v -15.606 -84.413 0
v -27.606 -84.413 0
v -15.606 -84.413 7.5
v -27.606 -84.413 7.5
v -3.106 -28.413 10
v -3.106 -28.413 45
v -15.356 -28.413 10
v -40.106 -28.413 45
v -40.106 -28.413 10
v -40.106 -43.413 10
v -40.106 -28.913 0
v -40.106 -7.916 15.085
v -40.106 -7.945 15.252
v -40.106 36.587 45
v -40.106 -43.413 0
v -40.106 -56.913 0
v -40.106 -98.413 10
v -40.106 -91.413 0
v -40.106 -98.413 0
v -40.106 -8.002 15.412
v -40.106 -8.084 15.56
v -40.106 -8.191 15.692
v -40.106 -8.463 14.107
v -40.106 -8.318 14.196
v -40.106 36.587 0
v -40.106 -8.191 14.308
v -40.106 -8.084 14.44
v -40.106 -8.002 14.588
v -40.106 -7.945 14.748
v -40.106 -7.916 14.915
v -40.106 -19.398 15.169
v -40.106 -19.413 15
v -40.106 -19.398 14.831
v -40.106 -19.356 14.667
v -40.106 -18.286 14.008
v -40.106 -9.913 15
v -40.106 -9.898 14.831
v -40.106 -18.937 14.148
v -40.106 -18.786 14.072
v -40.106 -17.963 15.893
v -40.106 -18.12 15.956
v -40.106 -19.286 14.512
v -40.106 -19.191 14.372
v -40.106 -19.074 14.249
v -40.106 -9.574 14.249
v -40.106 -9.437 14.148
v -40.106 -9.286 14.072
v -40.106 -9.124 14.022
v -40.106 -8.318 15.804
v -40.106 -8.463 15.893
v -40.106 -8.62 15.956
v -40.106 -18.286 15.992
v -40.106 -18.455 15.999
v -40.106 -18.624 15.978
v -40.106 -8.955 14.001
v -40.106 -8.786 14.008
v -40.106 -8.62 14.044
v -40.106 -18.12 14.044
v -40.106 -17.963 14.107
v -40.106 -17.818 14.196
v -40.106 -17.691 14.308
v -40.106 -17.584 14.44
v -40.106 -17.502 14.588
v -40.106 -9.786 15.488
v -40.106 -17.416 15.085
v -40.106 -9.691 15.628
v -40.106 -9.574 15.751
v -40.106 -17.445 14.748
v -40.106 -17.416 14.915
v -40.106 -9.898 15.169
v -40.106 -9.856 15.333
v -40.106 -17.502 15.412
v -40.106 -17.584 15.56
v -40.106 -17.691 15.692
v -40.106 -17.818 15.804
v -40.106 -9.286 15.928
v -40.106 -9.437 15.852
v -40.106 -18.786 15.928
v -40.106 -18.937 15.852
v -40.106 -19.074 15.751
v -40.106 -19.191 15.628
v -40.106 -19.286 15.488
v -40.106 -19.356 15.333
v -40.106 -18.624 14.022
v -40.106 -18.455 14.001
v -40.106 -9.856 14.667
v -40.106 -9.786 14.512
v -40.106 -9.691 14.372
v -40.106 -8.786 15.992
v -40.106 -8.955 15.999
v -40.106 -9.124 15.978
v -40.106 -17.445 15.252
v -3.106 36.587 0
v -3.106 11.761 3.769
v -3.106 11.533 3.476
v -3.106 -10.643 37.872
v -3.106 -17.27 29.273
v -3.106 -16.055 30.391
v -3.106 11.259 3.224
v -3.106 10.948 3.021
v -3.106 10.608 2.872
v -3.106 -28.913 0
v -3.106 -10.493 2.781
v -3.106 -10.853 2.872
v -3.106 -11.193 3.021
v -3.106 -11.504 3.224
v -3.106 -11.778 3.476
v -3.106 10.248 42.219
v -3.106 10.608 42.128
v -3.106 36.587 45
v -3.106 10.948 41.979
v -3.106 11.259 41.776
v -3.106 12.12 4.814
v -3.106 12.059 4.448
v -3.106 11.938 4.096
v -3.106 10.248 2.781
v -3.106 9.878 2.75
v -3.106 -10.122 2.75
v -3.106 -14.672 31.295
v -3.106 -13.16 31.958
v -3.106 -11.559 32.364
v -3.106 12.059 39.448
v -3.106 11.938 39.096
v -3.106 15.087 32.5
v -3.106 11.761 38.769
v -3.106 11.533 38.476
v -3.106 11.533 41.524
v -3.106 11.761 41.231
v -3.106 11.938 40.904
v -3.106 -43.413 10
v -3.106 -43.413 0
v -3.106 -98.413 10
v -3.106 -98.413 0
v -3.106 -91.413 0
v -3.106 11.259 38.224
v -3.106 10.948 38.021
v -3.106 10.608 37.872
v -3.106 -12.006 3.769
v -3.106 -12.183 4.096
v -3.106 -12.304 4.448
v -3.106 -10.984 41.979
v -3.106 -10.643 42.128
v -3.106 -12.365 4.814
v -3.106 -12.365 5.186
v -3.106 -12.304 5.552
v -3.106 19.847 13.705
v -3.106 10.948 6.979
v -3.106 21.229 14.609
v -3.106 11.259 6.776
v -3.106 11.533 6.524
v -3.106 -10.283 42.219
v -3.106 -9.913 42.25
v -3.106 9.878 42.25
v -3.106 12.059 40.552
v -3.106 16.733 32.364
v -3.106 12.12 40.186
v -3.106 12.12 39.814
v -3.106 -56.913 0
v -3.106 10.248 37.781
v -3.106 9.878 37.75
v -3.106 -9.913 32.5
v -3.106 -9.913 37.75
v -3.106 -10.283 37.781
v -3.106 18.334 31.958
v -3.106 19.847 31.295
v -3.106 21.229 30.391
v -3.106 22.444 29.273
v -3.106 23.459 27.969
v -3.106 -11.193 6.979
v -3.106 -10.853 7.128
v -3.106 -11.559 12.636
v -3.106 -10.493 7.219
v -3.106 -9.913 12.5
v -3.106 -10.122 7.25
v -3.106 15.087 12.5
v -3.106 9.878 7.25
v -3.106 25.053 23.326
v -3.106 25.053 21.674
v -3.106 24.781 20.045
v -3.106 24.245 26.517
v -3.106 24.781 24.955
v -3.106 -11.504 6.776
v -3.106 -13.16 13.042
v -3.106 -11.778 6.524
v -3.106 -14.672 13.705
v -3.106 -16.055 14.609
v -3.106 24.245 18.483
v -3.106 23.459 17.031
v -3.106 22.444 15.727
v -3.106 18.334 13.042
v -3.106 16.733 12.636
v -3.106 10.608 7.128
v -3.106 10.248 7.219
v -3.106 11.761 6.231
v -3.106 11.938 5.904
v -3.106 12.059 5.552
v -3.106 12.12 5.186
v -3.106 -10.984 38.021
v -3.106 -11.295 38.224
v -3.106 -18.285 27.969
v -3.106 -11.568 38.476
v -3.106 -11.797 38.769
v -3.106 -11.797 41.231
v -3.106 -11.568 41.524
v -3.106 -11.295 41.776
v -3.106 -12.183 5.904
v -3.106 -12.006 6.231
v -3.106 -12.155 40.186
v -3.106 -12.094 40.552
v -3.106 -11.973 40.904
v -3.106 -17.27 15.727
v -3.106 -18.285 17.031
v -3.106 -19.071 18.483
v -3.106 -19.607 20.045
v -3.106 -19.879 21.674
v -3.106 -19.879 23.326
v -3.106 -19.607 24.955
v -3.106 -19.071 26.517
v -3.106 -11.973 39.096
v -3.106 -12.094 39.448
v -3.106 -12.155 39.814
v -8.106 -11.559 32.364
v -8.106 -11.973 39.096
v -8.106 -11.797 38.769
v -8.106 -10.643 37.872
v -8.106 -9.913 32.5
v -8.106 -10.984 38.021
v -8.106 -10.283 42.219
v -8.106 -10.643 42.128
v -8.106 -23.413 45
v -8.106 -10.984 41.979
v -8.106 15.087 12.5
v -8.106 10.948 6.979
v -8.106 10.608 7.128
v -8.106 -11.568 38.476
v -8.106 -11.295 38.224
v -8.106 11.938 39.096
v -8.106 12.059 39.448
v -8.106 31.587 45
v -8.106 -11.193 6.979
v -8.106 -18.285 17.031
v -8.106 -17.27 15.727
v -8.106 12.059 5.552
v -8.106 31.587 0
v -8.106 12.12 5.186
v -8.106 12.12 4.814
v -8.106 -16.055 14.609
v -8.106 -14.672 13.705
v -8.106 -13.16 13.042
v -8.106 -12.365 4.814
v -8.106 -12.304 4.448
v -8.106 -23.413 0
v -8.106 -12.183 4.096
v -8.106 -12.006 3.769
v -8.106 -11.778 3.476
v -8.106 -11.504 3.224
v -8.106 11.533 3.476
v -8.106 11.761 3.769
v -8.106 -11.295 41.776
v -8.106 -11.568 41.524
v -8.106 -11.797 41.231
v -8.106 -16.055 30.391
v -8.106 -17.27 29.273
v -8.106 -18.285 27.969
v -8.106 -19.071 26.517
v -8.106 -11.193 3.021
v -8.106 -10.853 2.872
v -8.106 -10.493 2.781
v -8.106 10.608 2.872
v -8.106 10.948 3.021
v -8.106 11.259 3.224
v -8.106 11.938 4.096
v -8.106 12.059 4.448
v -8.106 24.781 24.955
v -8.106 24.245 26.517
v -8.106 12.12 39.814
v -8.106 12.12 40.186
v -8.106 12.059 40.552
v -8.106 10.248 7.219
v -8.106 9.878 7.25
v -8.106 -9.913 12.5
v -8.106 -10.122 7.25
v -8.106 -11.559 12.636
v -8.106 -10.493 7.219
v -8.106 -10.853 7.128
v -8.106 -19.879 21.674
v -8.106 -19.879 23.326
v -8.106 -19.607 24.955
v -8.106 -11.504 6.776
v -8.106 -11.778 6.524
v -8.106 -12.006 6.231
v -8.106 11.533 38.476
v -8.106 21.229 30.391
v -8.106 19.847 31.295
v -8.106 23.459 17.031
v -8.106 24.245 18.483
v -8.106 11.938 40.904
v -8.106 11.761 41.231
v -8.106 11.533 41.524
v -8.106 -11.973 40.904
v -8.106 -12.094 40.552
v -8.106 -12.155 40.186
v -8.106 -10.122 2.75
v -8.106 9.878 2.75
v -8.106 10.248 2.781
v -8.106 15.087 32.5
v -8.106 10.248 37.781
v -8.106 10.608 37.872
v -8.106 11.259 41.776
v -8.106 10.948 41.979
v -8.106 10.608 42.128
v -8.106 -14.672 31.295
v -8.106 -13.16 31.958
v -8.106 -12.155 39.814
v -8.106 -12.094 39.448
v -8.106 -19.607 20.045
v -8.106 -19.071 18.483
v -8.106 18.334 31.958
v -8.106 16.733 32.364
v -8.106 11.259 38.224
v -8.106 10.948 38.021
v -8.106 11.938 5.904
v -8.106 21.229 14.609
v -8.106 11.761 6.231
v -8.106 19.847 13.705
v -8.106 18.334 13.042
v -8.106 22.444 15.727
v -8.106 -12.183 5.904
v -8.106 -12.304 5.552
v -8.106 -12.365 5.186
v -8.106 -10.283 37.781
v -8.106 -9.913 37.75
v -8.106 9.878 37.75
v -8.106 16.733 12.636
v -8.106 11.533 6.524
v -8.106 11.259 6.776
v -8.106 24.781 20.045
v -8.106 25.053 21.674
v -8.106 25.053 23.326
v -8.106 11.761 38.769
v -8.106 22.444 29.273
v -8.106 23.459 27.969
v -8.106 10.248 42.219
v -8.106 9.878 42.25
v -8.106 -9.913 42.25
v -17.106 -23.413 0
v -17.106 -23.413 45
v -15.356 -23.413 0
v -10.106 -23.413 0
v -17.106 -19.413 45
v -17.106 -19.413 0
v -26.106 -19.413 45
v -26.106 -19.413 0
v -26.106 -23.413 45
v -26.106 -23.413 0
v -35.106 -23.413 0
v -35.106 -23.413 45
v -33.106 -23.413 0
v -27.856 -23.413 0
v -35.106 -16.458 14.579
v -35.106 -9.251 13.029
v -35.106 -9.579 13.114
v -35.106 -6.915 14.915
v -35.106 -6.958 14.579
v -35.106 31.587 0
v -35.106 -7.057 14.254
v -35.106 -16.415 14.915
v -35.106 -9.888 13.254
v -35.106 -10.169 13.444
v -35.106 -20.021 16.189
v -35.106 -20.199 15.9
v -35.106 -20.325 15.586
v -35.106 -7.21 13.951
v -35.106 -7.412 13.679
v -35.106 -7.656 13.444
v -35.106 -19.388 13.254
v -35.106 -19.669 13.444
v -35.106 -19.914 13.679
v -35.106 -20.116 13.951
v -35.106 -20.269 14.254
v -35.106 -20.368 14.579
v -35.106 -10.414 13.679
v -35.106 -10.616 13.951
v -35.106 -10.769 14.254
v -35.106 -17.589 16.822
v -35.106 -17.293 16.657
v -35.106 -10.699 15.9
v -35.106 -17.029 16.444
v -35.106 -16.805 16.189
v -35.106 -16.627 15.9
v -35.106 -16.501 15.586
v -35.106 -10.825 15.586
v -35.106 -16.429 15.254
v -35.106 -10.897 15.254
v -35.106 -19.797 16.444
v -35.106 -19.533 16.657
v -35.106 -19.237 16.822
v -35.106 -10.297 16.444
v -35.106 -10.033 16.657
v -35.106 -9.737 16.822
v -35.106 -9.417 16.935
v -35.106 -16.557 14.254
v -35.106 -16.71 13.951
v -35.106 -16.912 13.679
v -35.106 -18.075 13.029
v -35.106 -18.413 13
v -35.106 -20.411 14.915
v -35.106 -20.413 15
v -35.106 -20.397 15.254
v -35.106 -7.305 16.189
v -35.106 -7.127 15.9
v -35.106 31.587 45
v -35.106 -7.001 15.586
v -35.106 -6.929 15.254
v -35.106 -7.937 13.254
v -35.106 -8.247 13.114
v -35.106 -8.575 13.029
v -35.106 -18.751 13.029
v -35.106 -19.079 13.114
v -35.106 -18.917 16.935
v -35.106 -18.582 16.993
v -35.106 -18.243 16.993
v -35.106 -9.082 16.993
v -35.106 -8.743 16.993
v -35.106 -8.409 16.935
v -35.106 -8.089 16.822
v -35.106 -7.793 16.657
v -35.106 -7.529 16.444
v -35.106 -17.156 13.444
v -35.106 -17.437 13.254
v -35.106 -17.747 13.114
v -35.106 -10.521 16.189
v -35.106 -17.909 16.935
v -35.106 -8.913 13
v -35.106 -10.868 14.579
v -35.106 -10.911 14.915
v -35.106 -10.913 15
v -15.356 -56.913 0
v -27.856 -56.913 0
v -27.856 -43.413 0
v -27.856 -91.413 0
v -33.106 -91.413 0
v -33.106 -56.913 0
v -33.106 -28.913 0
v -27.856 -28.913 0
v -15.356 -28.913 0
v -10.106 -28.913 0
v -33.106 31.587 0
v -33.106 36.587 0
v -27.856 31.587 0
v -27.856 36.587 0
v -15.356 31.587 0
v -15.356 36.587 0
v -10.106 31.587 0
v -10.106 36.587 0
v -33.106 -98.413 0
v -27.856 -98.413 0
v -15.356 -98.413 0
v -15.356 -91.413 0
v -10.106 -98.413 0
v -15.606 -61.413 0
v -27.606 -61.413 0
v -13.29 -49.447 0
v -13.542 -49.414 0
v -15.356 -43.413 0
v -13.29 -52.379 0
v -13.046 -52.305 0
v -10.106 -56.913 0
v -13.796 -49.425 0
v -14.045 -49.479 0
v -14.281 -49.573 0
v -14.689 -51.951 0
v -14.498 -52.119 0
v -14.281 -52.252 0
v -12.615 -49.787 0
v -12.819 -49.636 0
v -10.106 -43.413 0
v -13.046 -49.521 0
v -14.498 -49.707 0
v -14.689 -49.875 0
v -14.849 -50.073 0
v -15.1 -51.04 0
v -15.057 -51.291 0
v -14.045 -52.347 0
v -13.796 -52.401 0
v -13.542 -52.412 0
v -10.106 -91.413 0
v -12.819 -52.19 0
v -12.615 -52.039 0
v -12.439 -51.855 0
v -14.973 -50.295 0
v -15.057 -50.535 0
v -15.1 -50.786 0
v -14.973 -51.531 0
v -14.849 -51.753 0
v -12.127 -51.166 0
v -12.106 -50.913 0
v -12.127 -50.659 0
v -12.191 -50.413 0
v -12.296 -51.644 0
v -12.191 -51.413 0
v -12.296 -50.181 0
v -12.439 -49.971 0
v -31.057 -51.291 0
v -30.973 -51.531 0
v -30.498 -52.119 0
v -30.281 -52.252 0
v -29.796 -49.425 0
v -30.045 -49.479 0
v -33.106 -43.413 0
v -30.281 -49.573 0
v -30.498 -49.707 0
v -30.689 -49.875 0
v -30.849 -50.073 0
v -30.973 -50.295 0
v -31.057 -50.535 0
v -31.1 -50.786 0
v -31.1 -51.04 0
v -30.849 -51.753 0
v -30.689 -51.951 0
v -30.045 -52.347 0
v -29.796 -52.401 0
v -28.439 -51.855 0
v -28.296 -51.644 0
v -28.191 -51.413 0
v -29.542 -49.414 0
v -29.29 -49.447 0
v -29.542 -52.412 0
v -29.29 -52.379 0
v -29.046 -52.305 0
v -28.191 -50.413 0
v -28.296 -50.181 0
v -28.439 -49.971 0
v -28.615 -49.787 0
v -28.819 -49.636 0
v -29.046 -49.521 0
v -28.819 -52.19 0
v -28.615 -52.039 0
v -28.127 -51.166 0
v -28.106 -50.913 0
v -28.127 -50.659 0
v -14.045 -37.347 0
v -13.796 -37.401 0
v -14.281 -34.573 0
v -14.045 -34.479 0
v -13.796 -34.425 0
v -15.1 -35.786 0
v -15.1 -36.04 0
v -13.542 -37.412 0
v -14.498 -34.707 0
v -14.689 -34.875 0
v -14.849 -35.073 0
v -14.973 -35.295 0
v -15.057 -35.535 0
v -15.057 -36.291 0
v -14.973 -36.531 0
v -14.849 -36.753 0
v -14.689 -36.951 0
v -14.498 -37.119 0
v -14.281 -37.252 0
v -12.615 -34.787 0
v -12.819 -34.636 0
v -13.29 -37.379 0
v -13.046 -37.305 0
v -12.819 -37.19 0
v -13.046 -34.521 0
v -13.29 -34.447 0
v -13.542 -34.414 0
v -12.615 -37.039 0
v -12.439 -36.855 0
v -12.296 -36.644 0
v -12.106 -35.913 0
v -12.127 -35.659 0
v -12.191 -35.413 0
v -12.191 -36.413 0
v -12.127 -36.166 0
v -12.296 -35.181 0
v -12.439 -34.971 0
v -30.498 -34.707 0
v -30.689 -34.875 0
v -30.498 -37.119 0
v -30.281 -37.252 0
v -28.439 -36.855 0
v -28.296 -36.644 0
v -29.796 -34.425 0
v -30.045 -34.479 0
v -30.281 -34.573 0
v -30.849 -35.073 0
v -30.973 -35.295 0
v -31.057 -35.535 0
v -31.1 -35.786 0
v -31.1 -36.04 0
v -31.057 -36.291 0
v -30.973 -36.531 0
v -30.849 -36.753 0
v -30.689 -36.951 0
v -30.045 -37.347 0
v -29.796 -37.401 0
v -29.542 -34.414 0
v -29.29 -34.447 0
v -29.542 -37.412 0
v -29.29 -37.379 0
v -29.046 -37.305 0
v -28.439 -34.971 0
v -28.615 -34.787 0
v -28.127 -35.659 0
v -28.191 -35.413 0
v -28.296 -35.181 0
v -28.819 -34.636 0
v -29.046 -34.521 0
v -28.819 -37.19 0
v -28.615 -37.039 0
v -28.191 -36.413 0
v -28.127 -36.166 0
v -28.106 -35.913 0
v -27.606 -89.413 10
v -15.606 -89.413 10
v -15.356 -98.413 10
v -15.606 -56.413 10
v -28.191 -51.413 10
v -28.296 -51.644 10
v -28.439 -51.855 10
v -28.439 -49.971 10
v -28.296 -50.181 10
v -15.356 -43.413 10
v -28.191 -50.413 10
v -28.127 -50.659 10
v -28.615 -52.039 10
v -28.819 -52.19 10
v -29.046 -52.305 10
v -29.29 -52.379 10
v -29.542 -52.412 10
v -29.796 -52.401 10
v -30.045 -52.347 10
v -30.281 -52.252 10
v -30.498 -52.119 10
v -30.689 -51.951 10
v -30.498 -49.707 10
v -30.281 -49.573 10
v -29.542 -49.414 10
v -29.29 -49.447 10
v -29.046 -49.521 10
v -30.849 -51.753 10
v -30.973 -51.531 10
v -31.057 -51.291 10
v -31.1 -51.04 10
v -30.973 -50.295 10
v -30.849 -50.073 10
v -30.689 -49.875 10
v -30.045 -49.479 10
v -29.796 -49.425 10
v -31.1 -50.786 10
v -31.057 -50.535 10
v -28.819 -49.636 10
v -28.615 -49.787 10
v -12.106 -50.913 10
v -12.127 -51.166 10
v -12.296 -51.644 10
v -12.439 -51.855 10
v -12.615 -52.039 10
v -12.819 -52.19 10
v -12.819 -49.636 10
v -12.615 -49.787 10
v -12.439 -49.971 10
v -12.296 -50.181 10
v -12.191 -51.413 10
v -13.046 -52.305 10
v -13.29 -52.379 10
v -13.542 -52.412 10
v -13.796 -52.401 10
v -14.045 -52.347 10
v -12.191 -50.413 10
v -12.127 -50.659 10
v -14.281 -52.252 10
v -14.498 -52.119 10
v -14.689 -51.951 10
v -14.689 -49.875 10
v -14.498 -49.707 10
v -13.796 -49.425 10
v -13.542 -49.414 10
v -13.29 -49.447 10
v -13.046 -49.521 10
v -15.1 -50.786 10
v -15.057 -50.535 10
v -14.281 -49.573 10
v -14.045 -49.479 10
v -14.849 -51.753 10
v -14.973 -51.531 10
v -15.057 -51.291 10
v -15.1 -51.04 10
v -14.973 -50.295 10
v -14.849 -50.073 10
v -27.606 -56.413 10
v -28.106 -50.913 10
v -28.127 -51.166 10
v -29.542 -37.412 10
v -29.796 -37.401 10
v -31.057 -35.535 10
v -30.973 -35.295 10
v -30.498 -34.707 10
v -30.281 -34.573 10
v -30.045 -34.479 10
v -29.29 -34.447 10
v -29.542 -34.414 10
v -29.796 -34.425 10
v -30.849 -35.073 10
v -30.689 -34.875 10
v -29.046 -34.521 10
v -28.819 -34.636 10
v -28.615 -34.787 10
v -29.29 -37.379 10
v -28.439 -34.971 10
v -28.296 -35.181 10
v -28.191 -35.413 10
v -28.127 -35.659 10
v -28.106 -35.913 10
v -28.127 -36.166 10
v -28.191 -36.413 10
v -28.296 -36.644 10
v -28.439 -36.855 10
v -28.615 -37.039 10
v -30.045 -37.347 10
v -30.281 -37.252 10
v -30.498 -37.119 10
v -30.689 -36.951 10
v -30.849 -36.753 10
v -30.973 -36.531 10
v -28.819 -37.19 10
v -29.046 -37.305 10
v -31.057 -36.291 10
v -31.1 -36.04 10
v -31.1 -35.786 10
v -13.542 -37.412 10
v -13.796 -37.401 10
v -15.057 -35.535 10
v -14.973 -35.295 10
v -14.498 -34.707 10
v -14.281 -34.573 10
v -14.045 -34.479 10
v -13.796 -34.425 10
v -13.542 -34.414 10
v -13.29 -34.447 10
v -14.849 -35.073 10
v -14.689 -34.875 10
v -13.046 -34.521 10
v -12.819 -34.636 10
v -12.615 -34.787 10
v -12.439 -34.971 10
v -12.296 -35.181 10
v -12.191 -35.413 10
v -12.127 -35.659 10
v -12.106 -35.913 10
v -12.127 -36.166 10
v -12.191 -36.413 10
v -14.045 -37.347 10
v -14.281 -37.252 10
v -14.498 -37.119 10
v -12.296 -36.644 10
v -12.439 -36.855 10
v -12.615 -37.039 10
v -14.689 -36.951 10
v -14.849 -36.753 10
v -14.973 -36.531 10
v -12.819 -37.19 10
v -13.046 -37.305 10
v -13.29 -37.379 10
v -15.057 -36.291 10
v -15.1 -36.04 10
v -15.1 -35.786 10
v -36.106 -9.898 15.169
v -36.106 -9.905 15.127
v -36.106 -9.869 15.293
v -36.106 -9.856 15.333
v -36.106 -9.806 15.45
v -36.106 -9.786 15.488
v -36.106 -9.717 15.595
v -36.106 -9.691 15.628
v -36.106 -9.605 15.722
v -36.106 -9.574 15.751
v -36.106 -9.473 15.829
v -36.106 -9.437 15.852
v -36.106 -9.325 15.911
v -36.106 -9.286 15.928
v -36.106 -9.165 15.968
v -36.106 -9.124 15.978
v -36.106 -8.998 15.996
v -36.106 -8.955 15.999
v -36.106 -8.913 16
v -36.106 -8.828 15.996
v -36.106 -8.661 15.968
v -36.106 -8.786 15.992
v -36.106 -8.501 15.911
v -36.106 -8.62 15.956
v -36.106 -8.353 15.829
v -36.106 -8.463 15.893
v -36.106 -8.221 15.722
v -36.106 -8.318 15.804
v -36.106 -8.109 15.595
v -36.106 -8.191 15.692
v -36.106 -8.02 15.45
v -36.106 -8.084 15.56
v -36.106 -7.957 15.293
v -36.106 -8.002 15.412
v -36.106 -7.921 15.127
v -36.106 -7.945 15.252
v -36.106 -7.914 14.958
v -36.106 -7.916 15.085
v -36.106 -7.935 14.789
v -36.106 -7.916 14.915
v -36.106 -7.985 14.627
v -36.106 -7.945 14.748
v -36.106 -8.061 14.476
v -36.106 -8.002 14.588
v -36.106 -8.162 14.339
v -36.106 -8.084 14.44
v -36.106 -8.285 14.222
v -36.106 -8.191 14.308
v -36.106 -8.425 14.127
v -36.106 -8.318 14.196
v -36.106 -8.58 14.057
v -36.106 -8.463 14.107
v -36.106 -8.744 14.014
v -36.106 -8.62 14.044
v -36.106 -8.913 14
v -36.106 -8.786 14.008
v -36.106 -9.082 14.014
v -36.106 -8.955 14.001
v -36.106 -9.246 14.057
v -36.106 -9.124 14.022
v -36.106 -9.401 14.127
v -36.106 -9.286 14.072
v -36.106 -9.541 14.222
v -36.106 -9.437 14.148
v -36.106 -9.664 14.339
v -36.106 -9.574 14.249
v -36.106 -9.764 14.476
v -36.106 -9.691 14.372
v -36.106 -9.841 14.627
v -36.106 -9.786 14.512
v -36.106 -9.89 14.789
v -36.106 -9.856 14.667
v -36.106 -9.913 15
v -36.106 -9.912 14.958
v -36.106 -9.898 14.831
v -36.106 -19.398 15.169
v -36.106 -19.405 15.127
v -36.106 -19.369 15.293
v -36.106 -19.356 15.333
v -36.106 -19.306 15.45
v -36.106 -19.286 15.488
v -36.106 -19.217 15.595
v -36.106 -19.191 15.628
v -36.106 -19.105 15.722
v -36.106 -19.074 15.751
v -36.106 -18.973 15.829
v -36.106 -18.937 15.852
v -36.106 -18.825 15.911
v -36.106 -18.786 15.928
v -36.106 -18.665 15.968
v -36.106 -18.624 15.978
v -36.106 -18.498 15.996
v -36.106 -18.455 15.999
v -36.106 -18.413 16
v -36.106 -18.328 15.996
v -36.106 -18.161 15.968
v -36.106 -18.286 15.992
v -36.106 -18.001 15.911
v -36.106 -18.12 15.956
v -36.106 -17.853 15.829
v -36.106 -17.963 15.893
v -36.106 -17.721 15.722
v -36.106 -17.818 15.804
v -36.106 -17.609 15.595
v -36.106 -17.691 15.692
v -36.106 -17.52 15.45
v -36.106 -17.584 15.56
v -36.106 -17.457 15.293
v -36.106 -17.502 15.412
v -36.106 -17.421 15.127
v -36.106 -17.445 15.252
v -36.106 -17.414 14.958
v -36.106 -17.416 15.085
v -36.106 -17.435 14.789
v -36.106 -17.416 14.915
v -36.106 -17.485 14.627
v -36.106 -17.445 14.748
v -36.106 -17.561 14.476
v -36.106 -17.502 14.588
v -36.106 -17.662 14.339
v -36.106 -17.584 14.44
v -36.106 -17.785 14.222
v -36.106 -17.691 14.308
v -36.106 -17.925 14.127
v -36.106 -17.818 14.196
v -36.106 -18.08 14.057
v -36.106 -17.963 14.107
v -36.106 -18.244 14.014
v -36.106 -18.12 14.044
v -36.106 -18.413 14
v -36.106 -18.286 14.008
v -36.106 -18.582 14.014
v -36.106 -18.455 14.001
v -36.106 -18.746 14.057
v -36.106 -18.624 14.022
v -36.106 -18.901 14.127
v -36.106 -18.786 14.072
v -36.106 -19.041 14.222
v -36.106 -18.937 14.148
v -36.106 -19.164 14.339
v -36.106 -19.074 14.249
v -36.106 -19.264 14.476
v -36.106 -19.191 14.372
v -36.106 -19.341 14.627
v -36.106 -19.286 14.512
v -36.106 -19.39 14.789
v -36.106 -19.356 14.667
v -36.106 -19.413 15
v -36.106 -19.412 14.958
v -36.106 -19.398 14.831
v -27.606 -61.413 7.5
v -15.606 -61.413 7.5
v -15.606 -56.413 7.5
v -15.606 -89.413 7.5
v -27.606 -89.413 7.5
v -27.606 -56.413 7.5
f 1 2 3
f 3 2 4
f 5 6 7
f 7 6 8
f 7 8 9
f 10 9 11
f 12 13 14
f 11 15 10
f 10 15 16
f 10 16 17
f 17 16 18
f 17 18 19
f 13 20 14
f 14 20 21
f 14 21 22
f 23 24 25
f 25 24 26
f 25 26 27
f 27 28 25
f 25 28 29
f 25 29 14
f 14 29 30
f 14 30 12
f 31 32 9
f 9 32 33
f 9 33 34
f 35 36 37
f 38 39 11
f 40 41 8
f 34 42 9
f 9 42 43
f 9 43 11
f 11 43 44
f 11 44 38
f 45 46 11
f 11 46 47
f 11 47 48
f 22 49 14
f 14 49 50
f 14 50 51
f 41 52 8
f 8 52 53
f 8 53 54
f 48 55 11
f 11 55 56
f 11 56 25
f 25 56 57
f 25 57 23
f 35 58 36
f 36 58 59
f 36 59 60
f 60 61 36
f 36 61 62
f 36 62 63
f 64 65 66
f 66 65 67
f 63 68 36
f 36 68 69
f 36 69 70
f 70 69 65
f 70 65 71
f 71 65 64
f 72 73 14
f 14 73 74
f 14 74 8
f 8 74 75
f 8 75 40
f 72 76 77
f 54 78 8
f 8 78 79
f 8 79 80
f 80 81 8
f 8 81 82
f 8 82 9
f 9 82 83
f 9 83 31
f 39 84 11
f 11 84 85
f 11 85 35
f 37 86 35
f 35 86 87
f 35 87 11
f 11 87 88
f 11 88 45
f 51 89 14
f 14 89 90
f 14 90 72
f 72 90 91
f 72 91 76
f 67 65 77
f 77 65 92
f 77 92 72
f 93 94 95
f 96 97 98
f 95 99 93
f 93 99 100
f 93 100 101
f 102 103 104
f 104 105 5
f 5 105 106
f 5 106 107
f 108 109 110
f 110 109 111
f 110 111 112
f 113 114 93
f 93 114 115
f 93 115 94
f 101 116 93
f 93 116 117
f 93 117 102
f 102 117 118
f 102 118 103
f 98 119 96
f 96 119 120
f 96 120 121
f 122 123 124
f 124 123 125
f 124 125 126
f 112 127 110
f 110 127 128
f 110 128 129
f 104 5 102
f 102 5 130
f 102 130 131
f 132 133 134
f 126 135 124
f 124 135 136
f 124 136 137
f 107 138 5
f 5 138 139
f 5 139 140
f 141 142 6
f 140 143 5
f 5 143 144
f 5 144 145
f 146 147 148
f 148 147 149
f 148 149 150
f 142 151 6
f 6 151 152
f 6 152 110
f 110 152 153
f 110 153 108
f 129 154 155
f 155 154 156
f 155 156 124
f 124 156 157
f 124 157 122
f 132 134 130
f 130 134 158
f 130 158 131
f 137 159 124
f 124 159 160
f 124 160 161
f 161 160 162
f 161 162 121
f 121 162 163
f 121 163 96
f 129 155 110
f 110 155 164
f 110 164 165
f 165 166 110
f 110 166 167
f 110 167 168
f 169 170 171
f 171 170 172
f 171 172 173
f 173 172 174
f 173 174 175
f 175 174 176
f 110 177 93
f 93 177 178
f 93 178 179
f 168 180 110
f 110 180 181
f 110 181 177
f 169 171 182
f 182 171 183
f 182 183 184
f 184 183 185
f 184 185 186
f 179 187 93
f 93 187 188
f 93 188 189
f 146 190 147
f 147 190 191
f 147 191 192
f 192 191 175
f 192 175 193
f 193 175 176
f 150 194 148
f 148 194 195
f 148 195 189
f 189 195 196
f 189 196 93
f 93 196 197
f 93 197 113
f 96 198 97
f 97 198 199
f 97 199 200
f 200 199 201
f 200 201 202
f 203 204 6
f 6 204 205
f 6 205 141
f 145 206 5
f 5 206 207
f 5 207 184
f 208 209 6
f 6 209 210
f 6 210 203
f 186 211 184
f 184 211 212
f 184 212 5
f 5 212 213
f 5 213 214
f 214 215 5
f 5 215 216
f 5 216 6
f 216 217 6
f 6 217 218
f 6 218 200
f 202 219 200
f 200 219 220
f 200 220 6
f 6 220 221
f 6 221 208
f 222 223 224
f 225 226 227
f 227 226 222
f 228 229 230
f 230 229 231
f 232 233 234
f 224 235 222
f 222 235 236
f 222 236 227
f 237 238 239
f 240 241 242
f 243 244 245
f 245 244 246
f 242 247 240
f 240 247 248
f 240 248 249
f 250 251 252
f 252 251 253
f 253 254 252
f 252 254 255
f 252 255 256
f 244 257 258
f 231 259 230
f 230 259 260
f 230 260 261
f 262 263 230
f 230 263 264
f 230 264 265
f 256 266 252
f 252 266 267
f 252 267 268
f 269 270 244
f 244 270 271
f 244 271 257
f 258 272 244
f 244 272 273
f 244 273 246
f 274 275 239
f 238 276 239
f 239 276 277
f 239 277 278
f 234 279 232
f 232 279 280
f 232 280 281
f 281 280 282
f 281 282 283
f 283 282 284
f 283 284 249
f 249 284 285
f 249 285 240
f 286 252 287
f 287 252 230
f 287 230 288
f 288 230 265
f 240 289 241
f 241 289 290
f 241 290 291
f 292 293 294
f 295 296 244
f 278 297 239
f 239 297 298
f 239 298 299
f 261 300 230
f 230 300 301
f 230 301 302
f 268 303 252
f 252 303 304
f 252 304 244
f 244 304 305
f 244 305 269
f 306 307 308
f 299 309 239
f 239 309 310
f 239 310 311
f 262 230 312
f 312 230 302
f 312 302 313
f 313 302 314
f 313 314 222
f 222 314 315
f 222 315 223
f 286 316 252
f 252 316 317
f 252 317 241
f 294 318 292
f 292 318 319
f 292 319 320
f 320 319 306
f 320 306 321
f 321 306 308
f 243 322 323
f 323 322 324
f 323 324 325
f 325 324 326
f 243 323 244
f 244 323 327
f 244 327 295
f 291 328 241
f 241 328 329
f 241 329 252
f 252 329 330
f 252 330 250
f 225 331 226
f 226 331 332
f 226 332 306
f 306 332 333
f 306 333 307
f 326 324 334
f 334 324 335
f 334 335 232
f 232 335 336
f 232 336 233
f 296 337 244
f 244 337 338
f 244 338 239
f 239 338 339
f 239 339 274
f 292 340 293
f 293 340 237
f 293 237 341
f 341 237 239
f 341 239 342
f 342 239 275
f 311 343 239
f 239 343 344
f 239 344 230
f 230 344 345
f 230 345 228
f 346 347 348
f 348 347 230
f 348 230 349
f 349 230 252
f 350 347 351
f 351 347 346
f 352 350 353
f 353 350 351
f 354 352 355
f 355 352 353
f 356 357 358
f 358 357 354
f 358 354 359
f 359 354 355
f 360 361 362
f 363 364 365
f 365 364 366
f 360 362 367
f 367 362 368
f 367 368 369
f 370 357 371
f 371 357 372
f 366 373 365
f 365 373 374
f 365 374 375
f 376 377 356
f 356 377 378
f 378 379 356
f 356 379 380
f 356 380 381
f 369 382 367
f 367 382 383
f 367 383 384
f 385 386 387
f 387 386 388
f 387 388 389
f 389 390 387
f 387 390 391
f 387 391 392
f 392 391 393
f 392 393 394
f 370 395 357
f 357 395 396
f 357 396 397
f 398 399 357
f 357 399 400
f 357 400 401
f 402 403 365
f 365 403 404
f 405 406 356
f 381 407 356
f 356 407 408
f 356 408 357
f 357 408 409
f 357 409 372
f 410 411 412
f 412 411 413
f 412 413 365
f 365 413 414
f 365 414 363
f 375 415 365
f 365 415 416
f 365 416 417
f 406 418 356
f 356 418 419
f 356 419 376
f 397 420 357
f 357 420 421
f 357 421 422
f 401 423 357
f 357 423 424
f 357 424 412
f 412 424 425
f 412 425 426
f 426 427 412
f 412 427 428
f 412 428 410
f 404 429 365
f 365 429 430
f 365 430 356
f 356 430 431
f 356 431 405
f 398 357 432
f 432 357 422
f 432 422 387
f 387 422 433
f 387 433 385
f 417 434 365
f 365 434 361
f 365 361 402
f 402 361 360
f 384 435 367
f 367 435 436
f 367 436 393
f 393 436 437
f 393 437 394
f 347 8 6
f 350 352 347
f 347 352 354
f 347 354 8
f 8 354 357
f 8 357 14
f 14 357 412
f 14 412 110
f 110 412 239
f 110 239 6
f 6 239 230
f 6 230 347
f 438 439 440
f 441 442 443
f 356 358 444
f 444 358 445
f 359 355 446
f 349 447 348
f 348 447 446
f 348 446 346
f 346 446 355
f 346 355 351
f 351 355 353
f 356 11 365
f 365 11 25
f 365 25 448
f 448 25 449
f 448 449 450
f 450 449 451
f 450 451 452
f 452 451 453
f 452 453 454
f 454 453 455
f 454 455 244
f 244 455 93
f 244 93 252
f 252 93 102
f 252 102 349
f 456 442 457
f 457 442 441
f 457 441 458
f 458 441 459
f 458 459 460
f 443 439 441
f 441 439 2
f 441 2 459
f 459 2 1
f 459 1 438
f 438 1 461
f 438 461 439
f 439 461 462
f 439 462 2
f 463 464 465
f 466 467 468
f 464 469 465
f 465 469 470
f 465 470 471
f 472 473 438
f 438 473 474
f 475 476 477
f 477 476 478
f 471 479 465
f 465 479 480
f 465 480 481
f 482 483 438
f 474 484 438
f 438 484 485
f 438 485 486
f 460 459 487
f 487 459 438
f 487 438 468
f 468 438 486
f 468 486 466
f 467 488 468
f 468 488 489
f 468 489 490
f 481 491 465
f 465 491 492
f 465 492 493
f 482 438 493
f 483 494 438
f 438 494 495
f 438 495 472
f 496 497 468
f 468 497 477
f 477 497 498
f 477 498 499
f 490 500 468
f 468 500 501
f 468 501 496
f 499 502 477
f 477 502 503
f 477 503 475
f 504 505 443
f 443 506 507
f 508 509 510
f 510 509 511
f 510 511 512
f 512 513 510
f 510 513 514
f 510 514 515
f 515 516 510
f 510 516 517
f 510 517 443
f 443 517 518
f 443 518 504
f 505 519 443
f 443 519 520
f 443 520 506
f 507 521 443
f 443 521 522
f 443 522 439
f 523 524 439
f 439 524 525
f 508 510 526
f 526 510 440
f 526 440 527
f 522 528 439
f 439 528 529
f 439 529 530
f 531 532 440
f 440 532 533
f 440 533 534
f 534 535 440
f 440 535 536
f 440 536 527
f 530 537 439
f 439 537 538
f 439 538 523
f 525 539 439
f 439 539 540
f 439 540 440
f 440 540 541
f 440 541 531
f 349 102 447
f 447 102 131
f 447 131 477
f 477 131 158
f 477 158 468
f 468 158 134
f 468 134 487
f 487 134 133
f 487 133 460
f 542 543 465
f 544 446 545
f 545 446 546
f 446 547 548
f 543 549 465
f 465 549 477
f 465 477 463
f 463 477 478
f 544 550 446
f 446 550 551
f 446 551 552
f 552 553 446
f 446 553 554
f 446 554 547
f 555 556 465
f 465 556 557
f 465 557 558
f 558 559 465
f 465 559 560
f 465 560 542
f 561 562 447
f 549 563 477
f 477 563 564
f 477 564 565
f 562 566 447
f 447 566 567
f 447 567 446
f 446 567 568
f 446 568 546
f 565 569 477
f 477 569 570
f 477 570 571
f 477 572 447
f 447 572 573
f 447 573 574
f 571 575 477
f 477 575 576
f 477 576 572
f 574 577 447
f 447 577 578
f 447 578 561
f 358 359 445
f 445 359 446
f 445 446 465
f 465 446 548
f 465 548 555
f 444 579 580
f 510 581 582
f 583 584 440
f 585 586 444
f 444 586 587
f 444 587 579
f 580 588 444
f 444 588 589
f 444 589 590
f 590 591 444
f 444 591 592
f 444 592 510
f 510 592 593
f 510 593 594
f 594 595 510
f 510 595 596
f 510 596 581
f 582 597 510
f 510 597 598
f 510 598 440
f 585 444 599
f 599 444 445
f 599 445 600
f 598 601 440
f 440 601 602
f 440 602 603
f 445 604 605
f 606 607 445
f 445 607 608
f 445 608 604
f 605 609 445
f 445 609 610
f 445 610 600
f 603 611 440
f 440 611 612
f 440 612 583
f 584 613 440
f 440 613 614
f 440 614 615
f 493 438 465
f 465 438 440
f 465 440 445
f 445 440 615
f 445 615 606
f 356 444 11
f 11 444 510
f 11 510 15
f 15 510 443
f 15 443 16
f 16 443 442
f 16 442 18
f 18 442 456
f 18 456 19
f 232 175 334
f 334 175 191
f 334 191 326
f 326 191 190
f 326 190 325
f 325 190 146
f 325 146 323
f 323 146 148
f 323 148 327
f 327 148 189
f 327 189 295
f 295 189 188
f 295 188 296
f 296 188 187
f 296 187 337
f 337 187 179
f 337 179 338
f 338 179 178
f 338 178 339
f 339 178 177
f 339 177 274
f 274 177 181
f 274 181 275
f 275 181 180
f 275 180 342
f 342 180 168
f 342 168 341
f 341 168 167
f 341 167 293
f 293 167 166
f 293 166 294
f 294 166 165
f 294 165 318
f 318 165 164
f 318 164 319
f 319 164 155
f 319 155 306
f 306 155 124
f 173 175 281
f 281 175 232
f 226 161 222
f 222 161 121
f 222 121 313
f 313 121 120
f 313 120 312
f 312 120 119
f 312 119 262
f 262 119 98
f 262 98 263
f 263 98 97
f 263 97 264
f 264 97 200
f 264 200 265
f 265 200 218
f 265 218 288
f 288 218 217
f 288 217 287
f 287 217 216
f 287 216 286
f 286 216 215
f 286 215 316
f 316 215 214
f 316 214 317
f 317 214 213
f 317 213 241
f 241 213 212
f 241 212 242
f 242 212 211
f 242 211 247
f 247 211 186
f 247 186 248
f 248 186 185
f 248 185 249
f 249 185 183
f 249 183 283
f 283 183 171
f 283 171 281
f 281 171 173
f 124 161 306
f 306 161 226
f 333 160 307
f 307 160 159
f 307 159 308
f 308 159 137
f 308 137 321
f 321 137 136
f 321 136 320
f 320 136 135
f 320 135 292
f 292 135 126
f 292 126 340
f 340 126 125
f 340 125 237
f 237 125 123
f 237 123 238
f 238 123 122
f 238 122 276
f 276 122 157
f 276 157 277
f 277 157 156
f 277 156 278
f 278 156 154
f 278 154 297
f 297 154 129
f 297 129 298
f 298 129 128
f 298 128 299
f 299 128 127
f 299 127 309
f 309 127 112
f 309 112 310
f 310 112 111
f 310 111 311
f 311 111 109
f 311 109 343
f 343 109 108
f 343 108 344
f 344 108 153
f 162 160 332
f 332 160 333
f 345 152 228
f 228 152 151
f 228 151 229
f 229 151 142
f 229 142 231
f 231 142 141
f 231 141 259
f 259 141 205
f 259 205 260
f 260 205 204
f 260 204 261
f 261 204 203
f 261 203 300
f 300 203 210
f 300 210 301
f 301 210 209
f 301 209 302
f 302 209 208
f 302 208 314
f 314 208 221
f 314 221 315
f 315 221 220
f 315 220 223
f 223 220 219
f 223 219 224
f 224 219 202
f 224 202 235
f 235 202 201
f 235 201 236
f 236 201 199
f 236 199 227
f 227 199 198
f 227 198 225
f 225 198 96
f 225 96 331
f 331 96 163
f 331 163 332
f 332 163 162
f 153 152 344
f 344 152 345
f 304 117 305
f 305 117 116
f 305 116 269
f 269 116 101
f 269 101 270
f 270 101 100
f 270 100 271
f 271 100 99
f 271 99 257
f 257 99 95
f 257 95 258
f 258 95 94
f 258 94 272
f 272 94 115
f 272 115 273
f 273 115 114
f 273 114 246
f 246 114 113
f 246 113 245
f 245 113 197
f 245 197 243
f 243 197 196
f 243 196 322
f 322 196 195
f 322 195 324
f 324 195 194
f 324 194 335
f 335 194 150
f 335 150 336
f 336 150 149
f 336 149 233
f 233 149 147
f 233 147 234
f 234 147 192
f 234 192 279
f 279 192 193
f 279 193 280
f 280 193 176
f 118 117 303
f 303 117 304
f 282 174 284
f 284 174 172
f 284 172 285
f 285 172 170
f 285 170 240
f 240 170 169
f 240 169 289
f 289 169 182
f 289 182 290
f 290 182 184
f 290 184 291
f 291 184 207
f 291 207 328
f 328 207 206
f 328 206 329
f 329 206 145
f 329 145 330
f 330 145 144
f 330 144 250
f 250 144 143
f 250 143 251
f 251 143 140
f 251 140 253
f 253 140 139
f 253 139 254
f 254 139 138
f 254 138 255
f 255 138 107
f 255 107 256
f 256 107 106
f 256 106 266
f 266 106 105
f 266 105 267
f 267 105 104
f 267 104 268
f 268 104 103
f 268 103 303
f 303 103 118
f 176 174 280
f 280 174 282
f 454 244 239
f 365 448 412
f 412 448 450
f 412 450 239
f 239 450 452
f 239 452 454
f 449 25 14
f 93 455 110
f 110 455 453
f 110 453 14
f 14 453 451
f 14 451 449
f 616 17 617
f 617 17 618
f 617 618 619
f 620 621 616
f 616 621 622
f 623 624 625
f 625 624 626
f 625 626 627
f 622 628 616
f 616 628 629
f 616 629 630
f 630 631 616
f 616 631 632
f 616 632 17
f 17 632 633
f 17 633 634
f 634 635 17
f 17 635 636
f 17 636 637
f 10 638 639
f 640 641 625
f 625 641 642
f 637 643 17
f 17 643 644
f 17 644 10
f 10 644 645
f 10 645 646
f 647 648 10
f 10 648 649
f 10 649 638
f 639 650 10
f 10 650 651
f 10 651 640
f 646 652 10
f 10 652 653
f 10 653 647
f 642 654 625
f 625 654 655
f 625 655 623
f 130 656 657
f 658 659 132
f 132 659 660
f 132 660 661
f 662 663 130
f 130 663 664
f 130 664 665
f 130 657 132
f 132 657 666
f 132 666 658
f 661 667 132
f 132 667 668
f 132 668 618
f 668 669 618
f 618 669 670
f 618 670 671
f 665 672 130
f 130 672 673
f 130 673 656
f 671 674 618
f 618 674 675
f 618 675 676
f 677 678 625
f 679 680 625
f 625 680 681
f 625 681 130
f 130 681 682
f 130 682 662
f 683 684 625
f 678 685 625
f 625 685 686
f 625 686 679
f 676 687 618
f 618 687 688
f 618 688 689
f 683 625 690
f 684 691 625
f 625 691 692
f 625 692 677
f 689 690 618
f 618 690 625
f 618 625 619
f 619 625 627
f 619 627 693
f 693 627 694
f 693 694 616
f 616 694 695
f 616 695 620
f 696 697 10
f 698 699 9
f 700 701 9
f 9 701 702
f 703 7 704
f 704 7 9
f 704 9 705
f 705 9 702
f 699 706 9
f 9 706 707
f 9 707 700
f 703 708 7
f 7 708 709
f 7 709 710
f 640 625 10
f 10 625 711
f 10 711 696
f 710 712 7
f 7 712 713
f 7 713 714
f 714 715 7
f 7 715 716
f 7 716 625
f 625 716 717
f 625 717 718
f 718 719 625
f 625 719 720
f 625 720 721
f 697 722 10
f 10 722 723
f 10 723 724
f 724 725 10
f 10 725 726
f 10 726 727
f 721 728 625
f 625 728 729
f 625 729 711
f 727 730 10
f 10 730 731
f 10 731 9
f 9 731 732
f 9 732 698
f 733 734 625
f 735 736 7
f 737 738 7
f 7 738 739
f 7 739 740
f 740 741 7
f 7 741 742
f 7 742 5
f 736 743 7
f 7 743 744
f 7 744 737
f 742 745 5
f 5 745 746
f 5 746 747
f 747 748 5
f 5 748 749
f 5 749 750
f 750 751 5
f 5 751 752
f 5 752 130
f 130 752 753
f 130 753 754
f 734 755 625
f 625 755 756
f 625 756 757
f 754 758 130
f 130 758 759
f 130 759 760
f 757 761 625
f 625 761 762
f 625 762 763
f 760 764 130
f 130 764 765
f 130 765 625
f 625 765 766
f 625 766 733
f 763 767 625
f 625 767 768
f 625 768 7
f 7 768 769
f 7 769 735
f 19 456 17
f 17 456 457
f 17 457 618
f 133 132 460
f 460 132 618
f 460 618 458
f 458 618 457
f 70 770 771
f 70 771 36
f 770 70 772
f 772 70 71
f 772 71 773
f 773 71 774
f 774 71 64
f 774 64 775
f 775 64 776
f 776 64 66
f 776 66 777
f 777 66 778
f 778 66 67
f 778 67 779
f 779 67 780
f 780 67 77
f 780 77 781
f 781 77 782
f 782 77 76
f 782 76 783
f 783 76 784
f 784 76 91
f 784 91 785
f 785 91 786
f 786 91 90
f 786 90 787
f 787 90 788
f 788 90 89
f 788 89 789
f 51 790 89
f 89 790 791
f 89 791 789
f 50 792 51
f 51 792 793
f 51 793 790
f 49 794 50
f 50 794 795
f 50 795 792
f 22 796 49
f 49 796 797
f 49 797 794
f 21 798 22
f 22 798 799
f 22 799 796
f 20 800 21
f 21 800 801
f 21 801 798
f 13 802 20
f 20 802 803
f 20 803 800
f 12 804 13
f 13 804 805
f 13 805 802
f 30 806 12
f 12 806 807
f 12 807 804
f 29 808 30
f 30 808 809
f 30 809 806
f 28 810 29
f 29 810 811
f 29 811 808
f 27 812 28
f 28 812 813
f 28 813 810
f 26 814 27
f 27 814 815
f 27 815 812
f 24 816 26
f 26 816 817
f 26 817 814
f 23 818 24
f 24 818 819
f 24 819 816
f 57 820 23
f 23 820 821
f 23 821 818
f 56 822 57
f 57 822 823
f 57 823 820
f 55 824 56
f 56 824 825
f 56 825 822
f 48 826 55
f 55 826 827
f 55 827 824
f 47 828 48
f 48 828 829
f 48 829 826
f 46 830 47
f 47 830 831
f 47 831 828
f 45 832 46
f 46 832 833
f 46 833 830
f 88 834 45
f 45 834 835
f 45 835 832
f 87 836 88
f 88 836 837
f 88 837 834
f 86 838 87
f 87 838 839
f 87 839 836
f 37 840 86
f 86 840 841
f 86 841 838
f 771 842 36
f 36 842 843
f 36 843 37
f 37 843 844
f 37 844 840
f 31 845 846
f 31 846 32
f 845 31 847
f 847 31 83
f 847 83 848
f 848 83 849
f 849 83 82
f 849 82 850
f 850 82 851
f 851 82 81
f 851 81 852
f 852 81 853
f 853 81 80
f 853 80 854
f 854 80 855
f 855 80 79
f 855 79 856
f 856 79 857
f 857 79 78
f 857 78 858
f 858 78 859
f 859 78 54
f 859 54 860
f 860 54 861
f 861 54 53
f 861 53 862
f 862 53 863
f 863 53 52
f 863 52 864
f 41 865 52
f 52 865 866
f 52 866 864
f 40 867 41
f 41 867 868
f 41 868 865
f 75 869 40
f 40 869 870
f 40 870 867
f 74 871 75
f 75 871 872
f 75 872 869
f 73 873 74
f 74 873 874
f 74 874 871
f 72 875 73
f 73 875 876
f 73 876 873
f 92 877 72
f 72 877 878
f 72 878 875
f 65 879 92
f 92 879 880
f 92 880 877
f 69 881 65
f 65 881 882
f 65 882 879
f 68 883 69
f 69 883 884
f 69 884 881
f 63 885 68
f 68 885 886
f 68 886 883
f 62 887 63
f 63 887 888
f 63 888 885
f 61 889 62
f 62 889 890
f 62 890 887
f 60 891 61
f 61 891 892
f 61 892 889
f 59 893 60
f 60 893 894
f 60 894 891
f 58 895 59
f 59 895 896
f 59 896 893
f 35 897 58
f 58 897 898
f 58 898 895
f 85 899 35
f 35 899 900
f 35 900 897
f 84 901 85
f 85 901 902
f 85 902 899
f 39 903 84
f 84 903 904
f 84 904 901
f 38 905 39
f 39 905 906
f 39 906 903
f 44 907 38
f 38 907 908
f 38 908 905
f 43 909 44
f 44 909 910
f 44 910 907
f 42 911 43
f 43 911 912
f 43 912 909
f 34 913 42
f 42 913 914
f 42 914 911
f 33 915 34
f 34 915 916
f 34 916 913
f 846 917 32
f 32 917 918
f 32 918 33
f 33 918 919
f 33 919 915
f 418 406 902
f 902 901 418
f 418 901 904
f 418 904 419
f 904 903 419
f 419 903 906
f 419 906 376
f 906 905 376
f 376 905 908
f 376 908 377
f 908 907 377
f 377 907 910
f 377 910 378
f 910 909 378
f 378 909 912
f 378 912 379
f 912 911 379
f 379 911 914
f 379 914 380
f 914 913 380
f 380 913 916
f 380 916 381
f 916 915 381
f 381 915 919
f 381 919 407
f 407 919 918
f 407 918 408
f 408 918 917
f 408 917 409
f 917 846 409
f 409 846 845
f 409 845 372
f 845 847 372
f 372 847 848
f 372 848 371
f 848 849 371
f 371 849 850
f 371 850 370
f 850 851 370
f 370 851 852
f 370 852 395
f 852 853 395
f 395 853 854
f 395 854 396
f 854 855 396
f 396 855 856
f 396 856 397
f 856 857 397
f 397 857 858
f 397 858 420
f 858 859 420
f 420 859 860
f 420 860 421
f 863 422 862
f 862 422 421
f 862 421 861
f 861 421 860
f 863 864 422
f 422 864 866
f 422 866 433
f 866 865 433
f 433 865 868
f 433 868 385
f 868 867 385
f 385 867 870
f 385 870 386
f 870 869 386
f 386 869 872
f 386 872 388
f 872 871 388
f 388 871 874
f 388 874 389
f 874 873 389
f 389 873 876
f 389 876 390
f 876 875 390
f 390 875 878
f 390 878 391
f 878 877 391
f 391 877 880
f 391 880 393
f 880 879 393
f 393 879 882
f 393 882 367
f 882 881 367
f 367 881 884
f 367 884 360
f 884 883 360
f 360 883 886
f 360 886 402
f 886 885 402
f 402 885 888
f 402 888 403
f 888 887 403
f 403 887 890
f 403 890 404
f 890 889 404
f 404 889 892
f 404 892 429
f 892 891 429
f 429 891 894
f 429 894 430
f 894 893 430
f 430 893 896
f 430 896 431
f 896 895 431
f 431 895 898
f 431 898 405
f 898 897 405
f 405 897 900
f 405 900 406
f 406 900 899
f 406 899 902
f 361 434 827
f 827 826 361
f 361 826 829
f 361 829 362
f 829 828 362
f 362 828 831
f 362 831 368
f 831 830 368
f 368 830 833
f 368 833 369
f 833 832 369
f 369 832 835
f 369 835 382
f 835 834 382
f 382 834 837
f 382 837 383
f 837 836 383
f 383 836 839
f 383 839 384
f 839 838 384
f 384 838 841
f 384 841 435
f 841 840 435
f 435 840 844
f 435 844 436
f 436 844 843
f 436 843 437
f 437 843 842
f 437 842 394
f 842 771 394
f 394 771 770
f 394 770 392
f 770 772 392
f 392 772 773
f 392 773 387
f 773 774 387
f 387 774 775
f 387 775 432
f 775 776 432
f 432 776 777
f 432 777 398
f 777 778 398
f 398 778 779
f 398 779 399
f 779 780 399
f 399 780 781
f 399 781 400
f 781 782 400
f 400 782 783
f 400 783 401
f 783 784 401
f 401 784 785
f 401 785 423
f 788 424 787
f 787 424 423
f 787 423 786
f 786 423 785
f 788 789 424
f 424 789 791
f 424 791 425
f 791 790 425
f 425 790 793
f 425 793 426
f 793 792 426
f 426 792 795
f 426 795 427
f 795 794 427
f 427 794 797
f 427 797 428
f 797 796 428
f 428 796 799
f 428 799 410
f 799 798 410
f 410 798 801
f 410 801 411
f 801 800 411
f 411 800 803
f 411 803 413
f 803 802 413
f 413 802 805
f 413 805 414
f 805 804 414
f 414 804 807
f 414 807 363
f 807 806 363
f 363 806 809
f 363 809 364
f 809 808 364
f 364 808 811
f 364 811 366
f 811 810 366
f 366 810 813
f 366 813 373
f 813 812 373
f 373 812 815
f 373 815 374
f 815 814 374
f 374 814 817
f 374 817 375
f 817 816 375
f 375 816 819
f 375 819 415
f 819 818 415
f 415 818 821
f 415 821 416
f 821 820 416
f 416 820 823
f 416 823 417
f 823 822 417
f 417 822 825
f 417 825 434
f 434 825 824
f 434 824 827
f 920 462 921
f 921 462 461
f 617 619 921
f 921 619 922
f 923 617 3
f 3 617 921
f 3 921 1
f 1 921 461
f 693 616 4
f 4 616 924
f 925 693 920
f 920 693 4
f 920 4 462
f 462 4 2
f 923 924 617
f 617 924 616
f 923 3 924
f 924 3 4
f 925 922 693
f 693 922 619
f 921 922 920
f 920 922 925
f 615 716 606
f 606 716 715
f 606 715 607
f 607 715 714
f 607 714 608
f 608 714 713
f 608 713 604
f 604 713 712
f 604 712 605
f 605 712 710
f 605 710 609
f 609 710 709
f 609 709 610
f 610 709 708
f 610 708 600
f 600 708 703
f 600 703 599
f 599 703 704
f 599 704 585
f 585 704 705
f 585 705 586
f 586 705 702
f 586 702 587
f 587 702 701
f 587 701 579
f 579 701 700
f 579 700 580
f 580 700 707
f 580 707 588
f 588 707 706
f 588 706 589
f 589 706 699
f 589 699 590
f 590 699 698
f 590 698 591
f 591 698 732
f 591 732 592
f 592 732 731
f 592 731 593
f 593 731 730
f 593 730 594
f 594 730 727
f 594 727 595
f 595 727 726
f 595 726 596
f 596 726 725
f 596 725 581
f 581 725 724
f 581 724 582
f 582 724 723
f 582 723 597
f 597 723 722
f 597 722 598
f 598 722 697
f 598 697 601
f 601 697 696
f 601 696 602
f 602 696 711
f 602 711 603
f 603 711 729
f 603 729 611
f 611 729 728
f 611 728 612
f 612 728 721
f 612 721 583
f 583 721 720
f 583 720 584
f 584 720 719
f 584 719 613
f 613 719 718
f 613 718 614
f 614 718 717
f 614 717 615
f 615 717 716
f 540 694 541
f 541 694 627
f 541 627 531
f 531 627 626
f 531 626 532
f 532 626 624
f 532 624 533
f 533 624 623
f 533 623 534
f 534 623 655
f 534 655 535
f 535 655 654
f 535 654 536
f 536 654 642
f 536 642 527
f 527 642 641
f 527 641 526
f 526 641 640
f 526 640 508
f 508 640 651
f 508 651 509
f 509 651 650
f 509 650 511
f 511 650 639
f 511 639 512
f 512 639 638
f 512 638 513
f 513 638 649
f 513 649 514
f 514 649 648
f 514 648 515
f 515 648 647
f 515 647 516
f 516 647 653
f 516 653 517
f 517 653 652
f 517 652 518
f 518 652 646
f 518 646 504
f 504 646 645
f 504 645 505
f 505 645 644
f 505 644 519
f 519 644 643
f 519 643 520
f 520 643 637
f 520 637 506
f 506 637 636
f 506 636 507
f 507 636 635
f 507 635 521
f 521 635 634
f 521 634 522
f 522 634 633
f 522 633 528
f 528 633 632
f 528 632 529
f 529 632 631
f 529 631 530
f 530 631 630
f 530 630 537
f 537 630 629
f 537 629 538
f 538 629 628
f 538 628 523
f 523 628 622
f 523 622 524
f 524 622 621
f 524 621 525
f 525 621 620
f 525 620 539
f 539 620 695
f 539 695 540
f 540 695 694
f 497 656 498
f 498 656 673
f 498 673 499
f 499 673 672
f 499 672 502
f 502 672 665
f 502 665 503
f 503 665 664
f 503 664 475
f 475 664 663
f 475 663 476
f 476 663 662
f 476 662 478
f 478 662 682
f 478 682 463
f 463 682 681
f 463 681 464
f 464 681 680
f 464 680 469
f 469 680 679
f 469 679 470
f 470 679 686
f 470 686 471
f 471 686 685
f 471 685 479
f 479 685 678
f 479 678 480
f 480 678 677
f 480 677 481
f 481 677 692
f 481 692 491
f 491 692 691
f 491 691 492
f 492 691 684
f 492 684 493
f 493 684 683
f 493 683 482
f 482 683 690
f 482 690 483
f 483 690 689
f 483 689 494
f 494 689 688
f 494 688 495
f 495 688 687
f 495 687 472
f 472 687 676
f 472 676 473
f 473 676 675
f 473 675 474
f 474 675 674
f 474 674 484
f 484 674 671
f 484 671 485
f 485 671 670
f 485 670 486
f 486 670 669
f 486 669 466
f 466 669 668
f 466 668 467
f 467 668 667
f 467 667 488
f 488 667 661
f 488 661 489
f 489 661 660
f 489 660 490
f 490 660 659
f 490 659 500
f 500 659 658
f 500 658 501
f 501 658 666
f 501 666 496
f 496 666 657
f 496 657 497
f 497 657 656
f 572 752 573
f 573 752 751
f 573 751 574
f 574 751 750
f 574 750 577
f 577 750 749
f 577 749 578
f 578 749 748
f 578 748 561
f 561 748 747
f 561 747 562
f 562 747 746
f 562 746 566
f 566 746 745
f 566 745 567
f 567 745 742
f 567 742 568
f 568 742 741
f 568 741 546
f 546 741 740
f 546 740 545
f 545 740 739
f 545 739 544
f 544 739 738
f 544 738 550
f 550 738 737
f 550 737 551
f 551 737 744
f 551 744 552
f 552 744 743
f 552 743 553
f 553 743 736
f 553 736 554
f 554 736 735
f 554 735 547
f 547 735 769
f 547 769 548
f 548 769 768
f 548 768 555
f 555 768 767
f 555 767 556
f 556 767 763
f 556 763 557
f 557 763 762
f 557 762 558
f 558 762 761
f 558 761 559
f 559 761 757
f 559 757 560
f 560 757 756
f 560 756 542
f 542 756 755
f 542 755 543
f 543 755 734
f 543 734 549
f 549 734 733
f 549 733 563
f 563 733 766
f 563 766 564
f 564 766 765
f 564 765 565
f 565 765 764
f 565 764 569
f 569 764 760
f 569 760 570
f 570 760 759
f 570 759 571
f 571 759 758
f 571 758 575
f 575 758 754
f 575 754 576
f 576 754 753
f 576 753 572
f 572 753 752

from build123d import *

# Parameters (mm, degrees)
BOSS_EXTRU_1_DEPTH      = 45
ENL_V_MAT_EXTRU_1_DEPTH = 5
ESQUISSE4_W             = 37
ESQUISSE4_H             = 45
BOSS_EXTRU_2_DEPTH      = 5
ESQUISSE5_W             = 37
ESQUISSE5_H             = 10
BOSS_EXTRU_3_DEPTH      = 70
ESQUISSE6_R             = 1
ENL_V_MAT_EXTRU_2_DEPTH = 10
CHANFREIN2_SIZE         = 1
ESQUISSE7_W             = 12
ESQUISSE7_H             = 23
ENL_V_MAT_EXTRU_3_DEPTH = 10
ESQUISSE8_W             = 12
ESQUISSE8_H             = 5
ENL_V_MAT_EXTRU_4_DEPTH = 2.5
ESQUISSE10_R            = 1.5
ENL_V_MAT_EXTRU_5_DEPTH = 10


with BuildPart() as part:
    # Esquisse1 → Boss.-Extru.1 (new body)
    with BuildSketch(Plane.XY):
        Polygon((-40.10574777, 31.587127795), (-35.10574777, 31.587127795), (-35.10574777, -23.412872205), (-26.10574777, -23.412872205), (-26.10574777, -19.412872205), (-17.10574777, -19.412872205), (-17.10574777, -23.412872205), (-8.10574777, -23.412872205), (-8.10574777, 31.587127795), (-3.10574777, 31.587127795), (-3.10574777, -28.412872205), (-40.10574777, -28.412872205), align=None)
    extrude(amount=BOSS_EXTRU_1_DEPTH)

    # Esquisse2 → Enlèv. mat.-Extru.1 (cut)
    with BuildSketch(Plane(origin=(-3.10574777, 0, 0), x_dir=(0, 0, -1), z_dir=(1, 0, 0))):
        with BuildLine():
            Line((-12.5, 15.087127795), (-12.5, -9.912872205))
            ThreePointArc((-12.5, -9.912872205), (-22.5, -19.912872205), (-32.5, -9.912872205))
            Line((-32.5, -9.912872205), (-32.5, 15.087127795))
            ThreePointArc((-32.5, 15.087127795), (-22.5, 25.087127795), (-12.5, 15.087127795))
        make_face()
        with BuildLine():
            Line((-37.75, 9.877519714), (-37.75, -9.912872205))
            ThreePointArc((-37.75, -9.912872205), (-40, -12.162872205), (-42.25, -9.912872205))
            Line((-42.25, -9.912872205), (-42.25, 9.877519714))
            ThreePointArc((-42.25, 9.877519714), (-40, 12.127519714), (-37.75, 9.877519714))
        make_face()
        with BuildLine():
            Line((-2.75, 9.877519714), (-2.75, -10.122480286))
            ThreePointArc((-2.75, -10.122480286), (-5, -12.372480286), (-7.25, -10.122480286))
            Line((-7.25, -10.122480286), (-7.25, 9.877519714))
            ThreePointArc((-7.25, 9.877519714), (-5, 12.127519714), (-2.75, 9.877519714))
        make_face()
    extrude(amount=-ENL_V_MAT_EXTRU_1_DEPTH, mode=Mode.SUBTRACT)

    # Esquisse4 → Boss.-Extru.2 (add)
    with BuildSketch(Plane(origin=(0, 31.587127795, 0), x_dir=(1, 0, 0), z_dir=(0, 1, 0))):
        with Locations((-21.60574777, -22.5)):
            Rectangle(ESQUISSE4_W, ESQUISSE4_H)
    extrude(amount=BOSS_EXTRU_2_DEPTH)

    # Esquisse5 → Boss.-Extru.3 (add)
    with BuildSketch(Plane.XZ.offset(28.412872205)):
        with Locations((-21.60574777, 5)):
            Rectangle(ESQUISSE5_W, ESQUISSE5_H)
    extrude(amount=BOSS_EXTRU_3_DEPTH)

    # Esquisse6 → Enlèv. mat.-Extru.2 (cut)
    with BuildSketch(Plane.ZY.offset(40.10574777)):
        with Locations((15, -18.412872205)):
            Circle(ESQUISSE6_R)
        with Locations((15, -8.912872205)):
            Circle(ESQUISSE6_R)
    extrude(amount=-ENL_V_MAT_EXTRU_2_DEPTH, mode=Mode.SUBTRACT)

    # Chanfrein2
    chanfrein2_edges = [part.edges().sort_by_distance(p)[0] for p in [
        (-35.10574777, -18.412872205, 14),
        (-35.10574777, -8.912872205, 14),
    ]]
    chamfer(chanfrein2_edges, length=CHANFREIN2_SIZE)

    # Esquisse7 → Enlèv. mat.-Extru.3 (cut)
    with BuildSketch(Plane.XY.offset(10)):
        with Locations((-21.60574777, -72.912872205)):
            Rectangle(ESQUISSE7_W, ESQUISSE7_H)
    extrude(amount=-ENL_V_MAT_EXTRU_3_DEPTH, mode=Mode.SUBTRACT)

    # Esquisse8 → Enlèv. mat.-Extru.4 (cut)
    with BuildSketch(Plane.XY.offset(10)):
        with Locations((-21.60574777, -58.912872205)):
            Rectangle(ESQUISSE8_W, ESQUISSE8_H)
        with Locations((-21.60574777, -86.912872205)):
            Rectangle(ESQUISSE8_W, ESQUISSE8_H)
    extrude(amount=-ENL_V_MAT_EXTRU_4_DEPTH, mode=Mode.SUBTRACT)

    # Esquisse10 → Enlèv. mat.-Extru.5 (cut)
    with BuildSketch(Plane.XY.offset(10)):
        with Locations((-29.60574777, -35.912872205)):
            Circle(ESQUISSE10_R)
        with Locations((-29.60574777, -50.912872205)):
            Circle(ESQUISSE10_R)
        with Locations((-13.60574777, -50.912872205)):
            Circle(ESQUISSE10_R)
        with Locations((-13.60574777, -35.912872205)):
            Circle(ESQUISSE10_R)
    extrude(amount=-ENL_V_MAT_EXTRU_5_DEPTH, mode=Mode.SUBTRACT)


solid = part.part
